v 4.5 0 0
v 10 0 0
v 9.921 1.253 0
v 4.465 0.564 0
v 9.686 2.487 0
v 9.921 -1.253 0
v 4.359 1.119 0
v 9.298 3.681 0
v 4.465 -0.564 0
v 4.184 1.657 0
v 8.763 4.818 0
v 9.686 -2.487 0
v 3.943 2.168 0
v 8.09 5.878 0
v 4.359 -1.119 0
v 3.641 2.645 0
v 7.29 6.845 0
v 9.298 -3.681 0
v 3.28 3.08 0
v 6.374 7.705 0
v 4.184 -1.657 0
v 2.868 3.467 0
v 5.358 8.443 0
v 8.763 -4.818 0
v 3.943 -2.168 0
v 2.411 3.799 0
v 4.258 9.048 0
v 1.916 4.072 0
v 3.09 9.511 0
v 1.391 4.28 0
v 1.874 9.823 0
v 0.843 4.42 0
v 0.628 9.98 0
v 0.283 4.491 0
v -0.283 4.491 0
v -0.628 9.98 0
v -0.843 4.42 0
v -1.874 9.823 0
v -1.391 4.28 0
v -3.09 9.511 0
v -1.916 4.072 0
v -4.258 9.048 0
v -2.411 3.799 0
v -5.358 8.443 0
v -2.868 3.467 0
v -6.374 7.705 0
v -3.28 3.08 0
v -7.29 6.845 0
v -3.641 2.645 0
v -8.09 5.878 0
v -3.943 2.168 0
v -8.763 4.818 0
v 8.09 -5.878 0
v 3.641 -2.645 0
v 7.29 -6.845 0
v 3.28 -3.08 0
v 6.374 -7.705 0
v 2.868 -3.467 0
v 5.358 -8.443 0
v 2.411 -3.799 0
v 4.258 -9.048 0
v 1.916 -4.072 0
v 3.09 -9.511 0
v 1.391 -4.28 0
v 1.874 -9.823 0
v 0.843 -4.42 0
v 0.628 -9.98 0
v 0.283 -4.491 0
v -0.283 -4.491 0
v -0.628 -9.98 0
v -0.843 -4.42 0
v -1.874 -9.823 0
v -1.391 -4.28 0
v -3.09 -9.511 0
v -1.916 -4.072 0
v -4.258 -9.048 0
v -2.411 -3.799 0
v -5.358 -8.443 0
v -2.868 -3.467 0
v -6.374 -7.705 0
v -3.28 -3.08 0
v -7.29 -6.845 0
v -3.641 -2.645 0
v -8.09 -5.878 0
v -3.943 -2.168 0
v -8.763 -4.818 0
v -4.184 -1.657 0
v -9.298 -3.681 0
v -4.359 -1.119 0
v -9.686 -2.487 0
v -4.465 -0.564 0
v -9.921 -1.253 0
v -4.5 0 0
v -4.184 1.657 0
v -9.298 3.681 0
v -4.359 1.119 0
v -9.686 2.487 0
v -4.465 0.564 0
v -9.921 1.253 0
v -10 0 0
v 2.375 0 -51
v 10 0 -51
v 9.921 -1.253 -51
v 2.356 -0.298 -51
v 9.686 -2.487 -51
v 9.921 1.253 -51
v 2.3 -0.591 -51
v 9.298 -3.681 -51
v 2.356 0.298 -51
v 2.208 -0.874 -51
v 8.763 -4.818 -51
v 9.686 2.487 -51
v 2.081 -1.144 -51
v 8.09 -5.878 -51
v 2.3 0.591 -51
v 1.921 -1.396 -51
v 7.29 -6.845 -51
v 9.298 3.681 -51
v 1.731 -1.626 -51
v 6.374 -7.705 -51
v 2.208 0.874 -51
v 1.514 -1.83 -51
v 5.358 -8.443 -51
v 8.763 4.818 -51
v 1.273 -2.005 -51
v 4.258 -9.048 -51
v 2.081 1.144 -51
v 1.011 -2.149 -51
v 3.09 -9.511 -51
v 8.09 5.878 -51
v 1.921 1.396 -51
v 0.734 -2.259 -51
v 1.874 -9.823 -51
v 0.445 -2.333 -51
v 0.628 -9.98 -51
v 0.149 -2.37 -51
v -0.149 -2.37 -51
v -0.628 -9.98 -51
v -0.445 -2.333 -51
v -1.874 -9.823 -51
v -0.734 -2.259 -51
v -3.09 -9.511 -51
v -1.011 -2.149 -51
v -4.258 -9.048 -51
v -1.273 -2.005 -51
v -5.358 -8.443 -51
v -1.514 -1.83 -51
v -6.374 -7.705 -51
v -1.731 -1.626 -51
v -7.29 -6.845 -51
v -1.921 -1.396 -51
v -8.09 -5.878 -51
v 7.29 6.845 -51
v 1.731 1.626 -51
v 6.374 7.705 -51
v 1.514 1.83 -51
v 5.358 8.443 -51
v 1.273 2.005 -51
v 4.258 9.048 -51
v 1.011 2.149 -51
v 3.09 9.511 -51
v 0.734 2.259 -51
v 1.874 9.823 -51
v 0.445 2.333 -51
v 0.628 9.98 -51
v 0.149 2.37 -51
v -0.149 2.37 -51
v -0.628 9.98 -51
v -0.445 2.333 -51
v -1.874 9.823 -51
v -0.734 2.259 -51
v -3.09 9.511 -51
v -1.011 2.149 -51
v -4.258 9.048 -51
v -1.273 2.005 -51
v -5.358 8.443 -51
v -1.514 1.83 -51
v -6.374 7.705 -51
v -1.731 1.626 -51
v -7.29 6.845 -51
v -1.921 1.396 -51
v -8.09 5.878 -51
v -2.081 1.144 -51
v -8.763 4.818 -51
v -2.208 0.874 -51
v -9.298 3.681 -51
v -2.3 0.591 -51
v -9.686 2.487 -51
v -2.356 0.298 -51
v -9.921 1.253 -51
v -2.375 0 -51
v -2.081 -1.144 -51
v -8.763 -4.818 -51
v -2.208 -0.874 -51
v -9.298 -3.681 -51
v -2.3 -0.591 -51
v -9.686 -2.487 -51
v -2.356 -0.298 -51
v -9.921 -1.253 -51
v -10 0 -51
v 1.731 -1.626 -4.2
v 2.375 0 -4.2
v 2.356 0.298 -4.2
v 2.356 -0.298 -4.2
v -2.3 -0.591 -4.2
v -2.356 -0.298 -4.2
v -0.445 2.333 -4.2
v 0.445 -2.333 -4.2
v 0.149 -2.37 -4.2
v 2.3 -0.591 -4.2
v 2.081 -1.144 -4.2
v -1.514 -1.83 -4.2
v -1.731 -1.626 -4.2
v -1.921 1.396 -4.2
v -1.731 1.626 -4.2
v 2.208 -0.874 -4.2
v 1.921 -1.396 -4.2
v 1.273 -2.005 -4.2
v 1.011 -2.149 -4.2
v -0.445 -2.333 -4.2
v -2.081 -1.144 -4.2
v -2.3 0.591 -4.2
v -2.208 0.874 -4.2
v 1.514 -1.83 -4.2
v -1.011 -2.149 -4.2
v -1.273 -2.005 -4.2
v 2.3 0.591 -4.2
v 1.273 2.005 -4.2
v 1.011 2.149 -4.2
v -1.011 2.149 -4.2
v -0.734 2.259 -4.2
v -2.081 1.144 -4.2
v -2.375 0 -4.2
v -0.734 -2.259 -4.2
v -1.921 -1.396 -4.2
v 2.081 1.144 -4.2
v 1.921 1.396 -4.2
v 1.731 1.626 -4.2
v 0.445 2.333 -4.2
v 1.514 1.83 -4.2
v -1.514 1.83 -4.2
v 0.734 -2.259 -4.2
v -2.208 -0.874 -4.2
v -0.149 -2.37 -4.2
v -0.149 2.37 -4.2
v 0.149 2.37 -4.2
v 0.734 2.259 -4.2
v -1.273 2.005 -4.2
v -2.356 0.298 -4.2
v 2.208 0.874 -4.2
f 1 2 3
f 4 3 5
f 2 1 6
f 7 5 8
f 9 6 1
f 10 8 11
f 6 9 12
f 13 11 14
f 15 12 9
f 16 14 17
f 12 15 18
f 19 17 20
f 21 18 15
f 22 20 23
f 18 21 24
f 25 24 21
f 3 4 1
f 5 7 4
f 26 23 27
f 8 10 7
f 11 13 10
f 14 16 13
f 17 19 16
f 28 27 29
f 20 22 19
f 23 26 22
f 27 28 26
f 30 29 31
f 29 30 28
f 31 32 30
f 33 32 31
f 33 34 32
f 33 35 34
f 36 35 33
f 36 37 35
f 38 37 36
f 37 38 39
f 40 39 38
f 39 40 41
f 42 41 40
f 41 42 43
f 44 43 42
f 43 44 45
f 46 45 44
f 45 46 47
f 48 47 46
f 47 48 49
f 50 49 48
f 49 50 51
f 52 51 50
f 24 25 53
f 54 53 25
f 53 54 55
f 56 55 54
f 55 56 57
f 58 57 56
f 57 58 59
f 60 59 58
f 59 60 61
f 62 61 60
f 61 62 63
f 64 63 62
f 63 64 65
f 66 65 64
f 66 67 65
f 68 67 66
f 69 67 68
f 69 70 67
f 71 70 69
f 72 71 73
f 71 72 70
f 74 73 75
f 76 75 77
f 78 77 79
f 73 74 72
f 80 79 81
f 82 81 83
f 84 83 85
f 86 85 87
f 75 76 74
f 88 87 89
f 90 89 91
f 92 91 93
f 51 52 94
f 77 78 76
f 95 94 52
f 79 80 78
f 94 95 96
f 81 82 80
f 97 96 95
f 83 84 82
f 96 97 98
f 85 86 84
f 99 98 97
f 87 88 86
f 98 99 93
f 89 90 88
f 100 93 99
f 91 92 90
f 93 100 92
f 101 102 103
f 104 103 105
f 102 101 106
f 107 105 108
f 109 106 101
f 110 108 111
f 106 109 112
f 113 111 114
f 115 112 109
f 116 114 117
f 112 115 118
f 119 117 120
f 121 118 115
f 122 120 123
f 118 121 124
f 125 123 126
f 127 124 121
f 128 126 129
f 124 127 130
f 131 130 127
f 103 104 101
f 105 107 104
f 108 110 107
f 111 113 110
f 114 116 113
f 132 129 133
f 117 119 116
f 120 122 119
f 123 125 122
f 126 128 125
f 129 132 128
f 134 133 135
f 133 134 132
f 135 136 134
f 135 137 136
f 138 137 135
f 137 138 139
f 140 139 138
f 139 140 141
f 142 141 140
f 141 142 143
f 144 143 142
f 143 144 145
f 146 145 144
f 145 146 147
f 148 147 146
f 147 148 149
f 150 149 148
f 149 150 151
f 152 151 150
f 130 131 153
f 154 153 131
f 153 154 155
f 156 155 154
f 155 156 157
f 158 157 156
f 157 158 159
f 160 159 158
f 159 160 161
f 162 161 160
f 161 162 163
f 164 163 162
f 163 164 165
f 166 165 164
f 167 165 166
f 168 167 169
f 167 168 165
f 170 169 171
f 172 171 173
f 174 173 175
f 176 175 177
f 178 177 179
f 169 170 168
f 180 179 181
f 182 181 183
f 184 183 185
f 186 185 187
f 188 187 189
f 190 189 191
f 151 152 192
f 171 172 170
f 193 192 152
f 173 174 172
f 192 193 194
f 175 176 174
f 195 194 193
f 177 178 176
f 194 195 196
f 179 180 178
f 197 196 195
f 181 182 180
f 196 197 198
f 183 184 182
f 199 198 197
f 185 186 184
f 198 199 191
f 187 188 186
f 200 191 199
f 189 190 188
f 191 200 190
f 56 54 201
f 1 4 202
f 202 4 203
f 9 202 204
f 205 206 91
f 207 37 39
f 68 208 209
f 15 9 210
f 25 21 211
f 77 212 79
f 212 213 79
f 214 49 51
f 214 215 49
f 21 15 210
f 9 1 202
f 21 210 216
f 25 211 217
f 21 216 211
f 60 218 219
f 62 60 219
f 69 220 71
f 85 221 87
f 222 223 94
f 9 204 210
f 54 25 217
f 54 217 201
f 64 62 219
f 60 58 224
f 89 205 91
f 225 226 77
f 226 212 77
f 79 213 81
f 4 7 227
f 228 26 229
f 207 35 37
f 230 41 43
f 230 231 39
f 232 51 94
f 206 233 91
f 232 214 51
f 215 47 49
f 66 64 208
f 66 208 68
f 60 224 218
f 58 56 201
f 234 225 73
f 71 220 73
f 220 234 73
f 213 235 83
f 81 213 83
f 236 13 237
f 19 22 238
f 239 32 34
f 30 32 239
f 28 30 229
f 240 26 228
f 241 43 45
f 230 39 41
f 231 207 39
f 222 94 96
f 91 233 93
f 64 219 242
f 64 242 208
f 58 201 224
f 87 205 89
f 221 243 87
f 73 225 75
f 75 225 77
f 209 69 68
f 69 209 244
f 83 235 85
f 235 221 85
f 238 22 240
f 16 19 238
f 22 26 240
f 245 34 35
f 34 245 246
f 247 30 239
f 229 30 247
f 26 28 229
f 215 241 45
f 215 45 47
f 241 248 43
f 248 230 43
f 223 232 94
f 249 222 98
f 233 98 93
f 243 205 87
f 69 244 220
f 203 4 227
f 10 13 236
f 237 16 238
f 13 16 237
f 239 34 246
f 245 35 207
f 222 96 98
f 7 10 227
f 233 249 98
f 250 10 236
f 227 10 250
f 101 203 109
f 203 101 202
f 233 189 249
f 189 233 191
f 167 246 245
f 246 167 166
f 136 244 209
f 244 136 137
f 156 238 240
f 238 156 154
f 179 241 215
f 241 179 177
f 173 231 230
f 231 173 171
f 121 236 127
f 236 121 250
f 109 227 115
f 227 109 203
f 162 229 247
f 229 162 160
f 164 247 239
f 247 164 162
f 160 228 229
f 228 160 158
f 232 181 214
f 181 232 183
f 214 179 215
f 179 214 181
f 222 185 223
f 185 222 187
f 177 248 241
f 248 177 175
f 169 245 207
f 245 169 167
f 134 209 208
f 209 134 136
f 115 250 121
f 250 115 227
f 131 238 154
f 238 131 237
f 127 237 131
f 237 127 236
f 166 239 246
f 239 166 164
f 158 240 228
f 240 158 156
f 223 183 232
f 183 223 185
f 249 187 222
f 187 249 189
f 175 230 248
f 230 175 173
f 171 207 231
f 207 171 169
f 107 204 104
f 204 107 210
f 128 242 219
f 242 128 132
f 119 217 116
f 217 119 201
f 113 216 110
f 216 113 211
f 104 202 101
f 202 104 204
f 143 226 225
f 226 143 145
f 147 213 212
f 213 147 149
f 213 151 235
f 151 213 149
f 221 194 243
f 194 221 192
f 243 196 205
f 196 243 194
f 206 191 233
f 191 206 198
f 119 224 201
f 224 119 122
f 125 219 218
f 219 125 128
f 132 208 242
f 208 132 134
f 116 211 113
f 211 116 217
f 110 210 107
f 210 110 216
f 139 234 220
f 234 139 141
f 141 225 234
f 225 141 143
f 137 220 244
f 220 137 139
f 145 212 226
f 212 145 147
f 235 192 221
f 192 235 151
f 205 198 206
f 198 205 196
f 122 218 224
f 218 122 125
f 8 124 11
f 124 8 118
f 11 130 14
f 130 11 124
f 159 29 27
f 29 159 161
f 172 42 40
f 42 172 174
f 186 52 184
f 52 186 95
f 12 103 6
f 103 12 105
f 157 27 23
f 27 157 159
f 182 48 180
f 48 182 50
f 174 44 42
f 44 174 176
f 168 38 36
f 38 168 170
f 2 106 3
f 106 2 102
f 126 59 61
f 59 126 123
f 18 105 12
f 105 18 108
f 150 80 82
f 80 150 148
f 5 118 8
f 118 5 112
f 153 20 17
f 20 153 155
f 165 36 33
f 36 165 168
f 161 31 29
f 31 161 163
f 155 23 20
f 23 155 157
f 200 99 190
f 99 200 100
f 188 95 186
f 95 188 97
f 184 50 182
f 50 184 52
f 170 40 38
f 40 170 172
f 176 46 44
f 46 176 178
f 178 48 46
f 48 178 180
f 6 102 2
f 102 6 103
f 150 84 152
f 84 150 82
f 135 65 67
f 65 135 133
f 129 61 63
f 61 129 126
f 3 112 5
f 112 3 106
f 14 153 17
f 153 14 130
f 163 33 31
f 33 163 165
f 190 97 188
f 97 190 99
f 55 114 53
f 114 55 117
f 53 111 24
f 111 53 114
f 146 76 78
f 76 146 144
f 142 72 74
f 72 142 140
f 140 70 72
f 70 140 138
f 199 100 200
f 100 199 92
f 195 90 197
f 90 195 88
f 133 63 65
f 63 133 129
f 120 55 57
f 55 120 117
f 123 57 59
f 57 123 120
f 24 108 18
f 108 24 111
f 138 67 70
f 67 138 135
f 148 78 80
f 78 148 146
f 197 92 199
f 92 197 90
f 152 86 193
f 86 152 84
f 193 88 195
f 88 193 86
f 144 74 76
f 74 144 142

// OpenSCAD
$fn = 50;


difference() {
	union() {
		translate(v = [0, 0, -51.0000000000]) {
			cylinder(h = 51, r = 10.0000000000);
		}
	}
	union() {
		translate(v = [0, 0, 0]) {
			rotate(a = [0, 0, 0]) {
				difference() {
					union() {
						#translate(v = [0, 0, -51.0000000000]) {
							cylinder(h = 51, r = 2.2500000000);
						}
						#translate(v = [0, 0, -4.2000000000]) {
							cylinder(h = 4.2000000000, r1 = 2.3750000000, r2 = 4.5000000000);
						}
						#translate(v = [0, 0, -51.0000000000]) {
							cylinder(h = 51, r = 2.3750000000);
						}
						#translate(v = [0, 0, -51.0000000000]) {
							cylinder(h = 51, r = 2.2500000000);
						}
					}
					union();
				}
			}
		}
	}
}
